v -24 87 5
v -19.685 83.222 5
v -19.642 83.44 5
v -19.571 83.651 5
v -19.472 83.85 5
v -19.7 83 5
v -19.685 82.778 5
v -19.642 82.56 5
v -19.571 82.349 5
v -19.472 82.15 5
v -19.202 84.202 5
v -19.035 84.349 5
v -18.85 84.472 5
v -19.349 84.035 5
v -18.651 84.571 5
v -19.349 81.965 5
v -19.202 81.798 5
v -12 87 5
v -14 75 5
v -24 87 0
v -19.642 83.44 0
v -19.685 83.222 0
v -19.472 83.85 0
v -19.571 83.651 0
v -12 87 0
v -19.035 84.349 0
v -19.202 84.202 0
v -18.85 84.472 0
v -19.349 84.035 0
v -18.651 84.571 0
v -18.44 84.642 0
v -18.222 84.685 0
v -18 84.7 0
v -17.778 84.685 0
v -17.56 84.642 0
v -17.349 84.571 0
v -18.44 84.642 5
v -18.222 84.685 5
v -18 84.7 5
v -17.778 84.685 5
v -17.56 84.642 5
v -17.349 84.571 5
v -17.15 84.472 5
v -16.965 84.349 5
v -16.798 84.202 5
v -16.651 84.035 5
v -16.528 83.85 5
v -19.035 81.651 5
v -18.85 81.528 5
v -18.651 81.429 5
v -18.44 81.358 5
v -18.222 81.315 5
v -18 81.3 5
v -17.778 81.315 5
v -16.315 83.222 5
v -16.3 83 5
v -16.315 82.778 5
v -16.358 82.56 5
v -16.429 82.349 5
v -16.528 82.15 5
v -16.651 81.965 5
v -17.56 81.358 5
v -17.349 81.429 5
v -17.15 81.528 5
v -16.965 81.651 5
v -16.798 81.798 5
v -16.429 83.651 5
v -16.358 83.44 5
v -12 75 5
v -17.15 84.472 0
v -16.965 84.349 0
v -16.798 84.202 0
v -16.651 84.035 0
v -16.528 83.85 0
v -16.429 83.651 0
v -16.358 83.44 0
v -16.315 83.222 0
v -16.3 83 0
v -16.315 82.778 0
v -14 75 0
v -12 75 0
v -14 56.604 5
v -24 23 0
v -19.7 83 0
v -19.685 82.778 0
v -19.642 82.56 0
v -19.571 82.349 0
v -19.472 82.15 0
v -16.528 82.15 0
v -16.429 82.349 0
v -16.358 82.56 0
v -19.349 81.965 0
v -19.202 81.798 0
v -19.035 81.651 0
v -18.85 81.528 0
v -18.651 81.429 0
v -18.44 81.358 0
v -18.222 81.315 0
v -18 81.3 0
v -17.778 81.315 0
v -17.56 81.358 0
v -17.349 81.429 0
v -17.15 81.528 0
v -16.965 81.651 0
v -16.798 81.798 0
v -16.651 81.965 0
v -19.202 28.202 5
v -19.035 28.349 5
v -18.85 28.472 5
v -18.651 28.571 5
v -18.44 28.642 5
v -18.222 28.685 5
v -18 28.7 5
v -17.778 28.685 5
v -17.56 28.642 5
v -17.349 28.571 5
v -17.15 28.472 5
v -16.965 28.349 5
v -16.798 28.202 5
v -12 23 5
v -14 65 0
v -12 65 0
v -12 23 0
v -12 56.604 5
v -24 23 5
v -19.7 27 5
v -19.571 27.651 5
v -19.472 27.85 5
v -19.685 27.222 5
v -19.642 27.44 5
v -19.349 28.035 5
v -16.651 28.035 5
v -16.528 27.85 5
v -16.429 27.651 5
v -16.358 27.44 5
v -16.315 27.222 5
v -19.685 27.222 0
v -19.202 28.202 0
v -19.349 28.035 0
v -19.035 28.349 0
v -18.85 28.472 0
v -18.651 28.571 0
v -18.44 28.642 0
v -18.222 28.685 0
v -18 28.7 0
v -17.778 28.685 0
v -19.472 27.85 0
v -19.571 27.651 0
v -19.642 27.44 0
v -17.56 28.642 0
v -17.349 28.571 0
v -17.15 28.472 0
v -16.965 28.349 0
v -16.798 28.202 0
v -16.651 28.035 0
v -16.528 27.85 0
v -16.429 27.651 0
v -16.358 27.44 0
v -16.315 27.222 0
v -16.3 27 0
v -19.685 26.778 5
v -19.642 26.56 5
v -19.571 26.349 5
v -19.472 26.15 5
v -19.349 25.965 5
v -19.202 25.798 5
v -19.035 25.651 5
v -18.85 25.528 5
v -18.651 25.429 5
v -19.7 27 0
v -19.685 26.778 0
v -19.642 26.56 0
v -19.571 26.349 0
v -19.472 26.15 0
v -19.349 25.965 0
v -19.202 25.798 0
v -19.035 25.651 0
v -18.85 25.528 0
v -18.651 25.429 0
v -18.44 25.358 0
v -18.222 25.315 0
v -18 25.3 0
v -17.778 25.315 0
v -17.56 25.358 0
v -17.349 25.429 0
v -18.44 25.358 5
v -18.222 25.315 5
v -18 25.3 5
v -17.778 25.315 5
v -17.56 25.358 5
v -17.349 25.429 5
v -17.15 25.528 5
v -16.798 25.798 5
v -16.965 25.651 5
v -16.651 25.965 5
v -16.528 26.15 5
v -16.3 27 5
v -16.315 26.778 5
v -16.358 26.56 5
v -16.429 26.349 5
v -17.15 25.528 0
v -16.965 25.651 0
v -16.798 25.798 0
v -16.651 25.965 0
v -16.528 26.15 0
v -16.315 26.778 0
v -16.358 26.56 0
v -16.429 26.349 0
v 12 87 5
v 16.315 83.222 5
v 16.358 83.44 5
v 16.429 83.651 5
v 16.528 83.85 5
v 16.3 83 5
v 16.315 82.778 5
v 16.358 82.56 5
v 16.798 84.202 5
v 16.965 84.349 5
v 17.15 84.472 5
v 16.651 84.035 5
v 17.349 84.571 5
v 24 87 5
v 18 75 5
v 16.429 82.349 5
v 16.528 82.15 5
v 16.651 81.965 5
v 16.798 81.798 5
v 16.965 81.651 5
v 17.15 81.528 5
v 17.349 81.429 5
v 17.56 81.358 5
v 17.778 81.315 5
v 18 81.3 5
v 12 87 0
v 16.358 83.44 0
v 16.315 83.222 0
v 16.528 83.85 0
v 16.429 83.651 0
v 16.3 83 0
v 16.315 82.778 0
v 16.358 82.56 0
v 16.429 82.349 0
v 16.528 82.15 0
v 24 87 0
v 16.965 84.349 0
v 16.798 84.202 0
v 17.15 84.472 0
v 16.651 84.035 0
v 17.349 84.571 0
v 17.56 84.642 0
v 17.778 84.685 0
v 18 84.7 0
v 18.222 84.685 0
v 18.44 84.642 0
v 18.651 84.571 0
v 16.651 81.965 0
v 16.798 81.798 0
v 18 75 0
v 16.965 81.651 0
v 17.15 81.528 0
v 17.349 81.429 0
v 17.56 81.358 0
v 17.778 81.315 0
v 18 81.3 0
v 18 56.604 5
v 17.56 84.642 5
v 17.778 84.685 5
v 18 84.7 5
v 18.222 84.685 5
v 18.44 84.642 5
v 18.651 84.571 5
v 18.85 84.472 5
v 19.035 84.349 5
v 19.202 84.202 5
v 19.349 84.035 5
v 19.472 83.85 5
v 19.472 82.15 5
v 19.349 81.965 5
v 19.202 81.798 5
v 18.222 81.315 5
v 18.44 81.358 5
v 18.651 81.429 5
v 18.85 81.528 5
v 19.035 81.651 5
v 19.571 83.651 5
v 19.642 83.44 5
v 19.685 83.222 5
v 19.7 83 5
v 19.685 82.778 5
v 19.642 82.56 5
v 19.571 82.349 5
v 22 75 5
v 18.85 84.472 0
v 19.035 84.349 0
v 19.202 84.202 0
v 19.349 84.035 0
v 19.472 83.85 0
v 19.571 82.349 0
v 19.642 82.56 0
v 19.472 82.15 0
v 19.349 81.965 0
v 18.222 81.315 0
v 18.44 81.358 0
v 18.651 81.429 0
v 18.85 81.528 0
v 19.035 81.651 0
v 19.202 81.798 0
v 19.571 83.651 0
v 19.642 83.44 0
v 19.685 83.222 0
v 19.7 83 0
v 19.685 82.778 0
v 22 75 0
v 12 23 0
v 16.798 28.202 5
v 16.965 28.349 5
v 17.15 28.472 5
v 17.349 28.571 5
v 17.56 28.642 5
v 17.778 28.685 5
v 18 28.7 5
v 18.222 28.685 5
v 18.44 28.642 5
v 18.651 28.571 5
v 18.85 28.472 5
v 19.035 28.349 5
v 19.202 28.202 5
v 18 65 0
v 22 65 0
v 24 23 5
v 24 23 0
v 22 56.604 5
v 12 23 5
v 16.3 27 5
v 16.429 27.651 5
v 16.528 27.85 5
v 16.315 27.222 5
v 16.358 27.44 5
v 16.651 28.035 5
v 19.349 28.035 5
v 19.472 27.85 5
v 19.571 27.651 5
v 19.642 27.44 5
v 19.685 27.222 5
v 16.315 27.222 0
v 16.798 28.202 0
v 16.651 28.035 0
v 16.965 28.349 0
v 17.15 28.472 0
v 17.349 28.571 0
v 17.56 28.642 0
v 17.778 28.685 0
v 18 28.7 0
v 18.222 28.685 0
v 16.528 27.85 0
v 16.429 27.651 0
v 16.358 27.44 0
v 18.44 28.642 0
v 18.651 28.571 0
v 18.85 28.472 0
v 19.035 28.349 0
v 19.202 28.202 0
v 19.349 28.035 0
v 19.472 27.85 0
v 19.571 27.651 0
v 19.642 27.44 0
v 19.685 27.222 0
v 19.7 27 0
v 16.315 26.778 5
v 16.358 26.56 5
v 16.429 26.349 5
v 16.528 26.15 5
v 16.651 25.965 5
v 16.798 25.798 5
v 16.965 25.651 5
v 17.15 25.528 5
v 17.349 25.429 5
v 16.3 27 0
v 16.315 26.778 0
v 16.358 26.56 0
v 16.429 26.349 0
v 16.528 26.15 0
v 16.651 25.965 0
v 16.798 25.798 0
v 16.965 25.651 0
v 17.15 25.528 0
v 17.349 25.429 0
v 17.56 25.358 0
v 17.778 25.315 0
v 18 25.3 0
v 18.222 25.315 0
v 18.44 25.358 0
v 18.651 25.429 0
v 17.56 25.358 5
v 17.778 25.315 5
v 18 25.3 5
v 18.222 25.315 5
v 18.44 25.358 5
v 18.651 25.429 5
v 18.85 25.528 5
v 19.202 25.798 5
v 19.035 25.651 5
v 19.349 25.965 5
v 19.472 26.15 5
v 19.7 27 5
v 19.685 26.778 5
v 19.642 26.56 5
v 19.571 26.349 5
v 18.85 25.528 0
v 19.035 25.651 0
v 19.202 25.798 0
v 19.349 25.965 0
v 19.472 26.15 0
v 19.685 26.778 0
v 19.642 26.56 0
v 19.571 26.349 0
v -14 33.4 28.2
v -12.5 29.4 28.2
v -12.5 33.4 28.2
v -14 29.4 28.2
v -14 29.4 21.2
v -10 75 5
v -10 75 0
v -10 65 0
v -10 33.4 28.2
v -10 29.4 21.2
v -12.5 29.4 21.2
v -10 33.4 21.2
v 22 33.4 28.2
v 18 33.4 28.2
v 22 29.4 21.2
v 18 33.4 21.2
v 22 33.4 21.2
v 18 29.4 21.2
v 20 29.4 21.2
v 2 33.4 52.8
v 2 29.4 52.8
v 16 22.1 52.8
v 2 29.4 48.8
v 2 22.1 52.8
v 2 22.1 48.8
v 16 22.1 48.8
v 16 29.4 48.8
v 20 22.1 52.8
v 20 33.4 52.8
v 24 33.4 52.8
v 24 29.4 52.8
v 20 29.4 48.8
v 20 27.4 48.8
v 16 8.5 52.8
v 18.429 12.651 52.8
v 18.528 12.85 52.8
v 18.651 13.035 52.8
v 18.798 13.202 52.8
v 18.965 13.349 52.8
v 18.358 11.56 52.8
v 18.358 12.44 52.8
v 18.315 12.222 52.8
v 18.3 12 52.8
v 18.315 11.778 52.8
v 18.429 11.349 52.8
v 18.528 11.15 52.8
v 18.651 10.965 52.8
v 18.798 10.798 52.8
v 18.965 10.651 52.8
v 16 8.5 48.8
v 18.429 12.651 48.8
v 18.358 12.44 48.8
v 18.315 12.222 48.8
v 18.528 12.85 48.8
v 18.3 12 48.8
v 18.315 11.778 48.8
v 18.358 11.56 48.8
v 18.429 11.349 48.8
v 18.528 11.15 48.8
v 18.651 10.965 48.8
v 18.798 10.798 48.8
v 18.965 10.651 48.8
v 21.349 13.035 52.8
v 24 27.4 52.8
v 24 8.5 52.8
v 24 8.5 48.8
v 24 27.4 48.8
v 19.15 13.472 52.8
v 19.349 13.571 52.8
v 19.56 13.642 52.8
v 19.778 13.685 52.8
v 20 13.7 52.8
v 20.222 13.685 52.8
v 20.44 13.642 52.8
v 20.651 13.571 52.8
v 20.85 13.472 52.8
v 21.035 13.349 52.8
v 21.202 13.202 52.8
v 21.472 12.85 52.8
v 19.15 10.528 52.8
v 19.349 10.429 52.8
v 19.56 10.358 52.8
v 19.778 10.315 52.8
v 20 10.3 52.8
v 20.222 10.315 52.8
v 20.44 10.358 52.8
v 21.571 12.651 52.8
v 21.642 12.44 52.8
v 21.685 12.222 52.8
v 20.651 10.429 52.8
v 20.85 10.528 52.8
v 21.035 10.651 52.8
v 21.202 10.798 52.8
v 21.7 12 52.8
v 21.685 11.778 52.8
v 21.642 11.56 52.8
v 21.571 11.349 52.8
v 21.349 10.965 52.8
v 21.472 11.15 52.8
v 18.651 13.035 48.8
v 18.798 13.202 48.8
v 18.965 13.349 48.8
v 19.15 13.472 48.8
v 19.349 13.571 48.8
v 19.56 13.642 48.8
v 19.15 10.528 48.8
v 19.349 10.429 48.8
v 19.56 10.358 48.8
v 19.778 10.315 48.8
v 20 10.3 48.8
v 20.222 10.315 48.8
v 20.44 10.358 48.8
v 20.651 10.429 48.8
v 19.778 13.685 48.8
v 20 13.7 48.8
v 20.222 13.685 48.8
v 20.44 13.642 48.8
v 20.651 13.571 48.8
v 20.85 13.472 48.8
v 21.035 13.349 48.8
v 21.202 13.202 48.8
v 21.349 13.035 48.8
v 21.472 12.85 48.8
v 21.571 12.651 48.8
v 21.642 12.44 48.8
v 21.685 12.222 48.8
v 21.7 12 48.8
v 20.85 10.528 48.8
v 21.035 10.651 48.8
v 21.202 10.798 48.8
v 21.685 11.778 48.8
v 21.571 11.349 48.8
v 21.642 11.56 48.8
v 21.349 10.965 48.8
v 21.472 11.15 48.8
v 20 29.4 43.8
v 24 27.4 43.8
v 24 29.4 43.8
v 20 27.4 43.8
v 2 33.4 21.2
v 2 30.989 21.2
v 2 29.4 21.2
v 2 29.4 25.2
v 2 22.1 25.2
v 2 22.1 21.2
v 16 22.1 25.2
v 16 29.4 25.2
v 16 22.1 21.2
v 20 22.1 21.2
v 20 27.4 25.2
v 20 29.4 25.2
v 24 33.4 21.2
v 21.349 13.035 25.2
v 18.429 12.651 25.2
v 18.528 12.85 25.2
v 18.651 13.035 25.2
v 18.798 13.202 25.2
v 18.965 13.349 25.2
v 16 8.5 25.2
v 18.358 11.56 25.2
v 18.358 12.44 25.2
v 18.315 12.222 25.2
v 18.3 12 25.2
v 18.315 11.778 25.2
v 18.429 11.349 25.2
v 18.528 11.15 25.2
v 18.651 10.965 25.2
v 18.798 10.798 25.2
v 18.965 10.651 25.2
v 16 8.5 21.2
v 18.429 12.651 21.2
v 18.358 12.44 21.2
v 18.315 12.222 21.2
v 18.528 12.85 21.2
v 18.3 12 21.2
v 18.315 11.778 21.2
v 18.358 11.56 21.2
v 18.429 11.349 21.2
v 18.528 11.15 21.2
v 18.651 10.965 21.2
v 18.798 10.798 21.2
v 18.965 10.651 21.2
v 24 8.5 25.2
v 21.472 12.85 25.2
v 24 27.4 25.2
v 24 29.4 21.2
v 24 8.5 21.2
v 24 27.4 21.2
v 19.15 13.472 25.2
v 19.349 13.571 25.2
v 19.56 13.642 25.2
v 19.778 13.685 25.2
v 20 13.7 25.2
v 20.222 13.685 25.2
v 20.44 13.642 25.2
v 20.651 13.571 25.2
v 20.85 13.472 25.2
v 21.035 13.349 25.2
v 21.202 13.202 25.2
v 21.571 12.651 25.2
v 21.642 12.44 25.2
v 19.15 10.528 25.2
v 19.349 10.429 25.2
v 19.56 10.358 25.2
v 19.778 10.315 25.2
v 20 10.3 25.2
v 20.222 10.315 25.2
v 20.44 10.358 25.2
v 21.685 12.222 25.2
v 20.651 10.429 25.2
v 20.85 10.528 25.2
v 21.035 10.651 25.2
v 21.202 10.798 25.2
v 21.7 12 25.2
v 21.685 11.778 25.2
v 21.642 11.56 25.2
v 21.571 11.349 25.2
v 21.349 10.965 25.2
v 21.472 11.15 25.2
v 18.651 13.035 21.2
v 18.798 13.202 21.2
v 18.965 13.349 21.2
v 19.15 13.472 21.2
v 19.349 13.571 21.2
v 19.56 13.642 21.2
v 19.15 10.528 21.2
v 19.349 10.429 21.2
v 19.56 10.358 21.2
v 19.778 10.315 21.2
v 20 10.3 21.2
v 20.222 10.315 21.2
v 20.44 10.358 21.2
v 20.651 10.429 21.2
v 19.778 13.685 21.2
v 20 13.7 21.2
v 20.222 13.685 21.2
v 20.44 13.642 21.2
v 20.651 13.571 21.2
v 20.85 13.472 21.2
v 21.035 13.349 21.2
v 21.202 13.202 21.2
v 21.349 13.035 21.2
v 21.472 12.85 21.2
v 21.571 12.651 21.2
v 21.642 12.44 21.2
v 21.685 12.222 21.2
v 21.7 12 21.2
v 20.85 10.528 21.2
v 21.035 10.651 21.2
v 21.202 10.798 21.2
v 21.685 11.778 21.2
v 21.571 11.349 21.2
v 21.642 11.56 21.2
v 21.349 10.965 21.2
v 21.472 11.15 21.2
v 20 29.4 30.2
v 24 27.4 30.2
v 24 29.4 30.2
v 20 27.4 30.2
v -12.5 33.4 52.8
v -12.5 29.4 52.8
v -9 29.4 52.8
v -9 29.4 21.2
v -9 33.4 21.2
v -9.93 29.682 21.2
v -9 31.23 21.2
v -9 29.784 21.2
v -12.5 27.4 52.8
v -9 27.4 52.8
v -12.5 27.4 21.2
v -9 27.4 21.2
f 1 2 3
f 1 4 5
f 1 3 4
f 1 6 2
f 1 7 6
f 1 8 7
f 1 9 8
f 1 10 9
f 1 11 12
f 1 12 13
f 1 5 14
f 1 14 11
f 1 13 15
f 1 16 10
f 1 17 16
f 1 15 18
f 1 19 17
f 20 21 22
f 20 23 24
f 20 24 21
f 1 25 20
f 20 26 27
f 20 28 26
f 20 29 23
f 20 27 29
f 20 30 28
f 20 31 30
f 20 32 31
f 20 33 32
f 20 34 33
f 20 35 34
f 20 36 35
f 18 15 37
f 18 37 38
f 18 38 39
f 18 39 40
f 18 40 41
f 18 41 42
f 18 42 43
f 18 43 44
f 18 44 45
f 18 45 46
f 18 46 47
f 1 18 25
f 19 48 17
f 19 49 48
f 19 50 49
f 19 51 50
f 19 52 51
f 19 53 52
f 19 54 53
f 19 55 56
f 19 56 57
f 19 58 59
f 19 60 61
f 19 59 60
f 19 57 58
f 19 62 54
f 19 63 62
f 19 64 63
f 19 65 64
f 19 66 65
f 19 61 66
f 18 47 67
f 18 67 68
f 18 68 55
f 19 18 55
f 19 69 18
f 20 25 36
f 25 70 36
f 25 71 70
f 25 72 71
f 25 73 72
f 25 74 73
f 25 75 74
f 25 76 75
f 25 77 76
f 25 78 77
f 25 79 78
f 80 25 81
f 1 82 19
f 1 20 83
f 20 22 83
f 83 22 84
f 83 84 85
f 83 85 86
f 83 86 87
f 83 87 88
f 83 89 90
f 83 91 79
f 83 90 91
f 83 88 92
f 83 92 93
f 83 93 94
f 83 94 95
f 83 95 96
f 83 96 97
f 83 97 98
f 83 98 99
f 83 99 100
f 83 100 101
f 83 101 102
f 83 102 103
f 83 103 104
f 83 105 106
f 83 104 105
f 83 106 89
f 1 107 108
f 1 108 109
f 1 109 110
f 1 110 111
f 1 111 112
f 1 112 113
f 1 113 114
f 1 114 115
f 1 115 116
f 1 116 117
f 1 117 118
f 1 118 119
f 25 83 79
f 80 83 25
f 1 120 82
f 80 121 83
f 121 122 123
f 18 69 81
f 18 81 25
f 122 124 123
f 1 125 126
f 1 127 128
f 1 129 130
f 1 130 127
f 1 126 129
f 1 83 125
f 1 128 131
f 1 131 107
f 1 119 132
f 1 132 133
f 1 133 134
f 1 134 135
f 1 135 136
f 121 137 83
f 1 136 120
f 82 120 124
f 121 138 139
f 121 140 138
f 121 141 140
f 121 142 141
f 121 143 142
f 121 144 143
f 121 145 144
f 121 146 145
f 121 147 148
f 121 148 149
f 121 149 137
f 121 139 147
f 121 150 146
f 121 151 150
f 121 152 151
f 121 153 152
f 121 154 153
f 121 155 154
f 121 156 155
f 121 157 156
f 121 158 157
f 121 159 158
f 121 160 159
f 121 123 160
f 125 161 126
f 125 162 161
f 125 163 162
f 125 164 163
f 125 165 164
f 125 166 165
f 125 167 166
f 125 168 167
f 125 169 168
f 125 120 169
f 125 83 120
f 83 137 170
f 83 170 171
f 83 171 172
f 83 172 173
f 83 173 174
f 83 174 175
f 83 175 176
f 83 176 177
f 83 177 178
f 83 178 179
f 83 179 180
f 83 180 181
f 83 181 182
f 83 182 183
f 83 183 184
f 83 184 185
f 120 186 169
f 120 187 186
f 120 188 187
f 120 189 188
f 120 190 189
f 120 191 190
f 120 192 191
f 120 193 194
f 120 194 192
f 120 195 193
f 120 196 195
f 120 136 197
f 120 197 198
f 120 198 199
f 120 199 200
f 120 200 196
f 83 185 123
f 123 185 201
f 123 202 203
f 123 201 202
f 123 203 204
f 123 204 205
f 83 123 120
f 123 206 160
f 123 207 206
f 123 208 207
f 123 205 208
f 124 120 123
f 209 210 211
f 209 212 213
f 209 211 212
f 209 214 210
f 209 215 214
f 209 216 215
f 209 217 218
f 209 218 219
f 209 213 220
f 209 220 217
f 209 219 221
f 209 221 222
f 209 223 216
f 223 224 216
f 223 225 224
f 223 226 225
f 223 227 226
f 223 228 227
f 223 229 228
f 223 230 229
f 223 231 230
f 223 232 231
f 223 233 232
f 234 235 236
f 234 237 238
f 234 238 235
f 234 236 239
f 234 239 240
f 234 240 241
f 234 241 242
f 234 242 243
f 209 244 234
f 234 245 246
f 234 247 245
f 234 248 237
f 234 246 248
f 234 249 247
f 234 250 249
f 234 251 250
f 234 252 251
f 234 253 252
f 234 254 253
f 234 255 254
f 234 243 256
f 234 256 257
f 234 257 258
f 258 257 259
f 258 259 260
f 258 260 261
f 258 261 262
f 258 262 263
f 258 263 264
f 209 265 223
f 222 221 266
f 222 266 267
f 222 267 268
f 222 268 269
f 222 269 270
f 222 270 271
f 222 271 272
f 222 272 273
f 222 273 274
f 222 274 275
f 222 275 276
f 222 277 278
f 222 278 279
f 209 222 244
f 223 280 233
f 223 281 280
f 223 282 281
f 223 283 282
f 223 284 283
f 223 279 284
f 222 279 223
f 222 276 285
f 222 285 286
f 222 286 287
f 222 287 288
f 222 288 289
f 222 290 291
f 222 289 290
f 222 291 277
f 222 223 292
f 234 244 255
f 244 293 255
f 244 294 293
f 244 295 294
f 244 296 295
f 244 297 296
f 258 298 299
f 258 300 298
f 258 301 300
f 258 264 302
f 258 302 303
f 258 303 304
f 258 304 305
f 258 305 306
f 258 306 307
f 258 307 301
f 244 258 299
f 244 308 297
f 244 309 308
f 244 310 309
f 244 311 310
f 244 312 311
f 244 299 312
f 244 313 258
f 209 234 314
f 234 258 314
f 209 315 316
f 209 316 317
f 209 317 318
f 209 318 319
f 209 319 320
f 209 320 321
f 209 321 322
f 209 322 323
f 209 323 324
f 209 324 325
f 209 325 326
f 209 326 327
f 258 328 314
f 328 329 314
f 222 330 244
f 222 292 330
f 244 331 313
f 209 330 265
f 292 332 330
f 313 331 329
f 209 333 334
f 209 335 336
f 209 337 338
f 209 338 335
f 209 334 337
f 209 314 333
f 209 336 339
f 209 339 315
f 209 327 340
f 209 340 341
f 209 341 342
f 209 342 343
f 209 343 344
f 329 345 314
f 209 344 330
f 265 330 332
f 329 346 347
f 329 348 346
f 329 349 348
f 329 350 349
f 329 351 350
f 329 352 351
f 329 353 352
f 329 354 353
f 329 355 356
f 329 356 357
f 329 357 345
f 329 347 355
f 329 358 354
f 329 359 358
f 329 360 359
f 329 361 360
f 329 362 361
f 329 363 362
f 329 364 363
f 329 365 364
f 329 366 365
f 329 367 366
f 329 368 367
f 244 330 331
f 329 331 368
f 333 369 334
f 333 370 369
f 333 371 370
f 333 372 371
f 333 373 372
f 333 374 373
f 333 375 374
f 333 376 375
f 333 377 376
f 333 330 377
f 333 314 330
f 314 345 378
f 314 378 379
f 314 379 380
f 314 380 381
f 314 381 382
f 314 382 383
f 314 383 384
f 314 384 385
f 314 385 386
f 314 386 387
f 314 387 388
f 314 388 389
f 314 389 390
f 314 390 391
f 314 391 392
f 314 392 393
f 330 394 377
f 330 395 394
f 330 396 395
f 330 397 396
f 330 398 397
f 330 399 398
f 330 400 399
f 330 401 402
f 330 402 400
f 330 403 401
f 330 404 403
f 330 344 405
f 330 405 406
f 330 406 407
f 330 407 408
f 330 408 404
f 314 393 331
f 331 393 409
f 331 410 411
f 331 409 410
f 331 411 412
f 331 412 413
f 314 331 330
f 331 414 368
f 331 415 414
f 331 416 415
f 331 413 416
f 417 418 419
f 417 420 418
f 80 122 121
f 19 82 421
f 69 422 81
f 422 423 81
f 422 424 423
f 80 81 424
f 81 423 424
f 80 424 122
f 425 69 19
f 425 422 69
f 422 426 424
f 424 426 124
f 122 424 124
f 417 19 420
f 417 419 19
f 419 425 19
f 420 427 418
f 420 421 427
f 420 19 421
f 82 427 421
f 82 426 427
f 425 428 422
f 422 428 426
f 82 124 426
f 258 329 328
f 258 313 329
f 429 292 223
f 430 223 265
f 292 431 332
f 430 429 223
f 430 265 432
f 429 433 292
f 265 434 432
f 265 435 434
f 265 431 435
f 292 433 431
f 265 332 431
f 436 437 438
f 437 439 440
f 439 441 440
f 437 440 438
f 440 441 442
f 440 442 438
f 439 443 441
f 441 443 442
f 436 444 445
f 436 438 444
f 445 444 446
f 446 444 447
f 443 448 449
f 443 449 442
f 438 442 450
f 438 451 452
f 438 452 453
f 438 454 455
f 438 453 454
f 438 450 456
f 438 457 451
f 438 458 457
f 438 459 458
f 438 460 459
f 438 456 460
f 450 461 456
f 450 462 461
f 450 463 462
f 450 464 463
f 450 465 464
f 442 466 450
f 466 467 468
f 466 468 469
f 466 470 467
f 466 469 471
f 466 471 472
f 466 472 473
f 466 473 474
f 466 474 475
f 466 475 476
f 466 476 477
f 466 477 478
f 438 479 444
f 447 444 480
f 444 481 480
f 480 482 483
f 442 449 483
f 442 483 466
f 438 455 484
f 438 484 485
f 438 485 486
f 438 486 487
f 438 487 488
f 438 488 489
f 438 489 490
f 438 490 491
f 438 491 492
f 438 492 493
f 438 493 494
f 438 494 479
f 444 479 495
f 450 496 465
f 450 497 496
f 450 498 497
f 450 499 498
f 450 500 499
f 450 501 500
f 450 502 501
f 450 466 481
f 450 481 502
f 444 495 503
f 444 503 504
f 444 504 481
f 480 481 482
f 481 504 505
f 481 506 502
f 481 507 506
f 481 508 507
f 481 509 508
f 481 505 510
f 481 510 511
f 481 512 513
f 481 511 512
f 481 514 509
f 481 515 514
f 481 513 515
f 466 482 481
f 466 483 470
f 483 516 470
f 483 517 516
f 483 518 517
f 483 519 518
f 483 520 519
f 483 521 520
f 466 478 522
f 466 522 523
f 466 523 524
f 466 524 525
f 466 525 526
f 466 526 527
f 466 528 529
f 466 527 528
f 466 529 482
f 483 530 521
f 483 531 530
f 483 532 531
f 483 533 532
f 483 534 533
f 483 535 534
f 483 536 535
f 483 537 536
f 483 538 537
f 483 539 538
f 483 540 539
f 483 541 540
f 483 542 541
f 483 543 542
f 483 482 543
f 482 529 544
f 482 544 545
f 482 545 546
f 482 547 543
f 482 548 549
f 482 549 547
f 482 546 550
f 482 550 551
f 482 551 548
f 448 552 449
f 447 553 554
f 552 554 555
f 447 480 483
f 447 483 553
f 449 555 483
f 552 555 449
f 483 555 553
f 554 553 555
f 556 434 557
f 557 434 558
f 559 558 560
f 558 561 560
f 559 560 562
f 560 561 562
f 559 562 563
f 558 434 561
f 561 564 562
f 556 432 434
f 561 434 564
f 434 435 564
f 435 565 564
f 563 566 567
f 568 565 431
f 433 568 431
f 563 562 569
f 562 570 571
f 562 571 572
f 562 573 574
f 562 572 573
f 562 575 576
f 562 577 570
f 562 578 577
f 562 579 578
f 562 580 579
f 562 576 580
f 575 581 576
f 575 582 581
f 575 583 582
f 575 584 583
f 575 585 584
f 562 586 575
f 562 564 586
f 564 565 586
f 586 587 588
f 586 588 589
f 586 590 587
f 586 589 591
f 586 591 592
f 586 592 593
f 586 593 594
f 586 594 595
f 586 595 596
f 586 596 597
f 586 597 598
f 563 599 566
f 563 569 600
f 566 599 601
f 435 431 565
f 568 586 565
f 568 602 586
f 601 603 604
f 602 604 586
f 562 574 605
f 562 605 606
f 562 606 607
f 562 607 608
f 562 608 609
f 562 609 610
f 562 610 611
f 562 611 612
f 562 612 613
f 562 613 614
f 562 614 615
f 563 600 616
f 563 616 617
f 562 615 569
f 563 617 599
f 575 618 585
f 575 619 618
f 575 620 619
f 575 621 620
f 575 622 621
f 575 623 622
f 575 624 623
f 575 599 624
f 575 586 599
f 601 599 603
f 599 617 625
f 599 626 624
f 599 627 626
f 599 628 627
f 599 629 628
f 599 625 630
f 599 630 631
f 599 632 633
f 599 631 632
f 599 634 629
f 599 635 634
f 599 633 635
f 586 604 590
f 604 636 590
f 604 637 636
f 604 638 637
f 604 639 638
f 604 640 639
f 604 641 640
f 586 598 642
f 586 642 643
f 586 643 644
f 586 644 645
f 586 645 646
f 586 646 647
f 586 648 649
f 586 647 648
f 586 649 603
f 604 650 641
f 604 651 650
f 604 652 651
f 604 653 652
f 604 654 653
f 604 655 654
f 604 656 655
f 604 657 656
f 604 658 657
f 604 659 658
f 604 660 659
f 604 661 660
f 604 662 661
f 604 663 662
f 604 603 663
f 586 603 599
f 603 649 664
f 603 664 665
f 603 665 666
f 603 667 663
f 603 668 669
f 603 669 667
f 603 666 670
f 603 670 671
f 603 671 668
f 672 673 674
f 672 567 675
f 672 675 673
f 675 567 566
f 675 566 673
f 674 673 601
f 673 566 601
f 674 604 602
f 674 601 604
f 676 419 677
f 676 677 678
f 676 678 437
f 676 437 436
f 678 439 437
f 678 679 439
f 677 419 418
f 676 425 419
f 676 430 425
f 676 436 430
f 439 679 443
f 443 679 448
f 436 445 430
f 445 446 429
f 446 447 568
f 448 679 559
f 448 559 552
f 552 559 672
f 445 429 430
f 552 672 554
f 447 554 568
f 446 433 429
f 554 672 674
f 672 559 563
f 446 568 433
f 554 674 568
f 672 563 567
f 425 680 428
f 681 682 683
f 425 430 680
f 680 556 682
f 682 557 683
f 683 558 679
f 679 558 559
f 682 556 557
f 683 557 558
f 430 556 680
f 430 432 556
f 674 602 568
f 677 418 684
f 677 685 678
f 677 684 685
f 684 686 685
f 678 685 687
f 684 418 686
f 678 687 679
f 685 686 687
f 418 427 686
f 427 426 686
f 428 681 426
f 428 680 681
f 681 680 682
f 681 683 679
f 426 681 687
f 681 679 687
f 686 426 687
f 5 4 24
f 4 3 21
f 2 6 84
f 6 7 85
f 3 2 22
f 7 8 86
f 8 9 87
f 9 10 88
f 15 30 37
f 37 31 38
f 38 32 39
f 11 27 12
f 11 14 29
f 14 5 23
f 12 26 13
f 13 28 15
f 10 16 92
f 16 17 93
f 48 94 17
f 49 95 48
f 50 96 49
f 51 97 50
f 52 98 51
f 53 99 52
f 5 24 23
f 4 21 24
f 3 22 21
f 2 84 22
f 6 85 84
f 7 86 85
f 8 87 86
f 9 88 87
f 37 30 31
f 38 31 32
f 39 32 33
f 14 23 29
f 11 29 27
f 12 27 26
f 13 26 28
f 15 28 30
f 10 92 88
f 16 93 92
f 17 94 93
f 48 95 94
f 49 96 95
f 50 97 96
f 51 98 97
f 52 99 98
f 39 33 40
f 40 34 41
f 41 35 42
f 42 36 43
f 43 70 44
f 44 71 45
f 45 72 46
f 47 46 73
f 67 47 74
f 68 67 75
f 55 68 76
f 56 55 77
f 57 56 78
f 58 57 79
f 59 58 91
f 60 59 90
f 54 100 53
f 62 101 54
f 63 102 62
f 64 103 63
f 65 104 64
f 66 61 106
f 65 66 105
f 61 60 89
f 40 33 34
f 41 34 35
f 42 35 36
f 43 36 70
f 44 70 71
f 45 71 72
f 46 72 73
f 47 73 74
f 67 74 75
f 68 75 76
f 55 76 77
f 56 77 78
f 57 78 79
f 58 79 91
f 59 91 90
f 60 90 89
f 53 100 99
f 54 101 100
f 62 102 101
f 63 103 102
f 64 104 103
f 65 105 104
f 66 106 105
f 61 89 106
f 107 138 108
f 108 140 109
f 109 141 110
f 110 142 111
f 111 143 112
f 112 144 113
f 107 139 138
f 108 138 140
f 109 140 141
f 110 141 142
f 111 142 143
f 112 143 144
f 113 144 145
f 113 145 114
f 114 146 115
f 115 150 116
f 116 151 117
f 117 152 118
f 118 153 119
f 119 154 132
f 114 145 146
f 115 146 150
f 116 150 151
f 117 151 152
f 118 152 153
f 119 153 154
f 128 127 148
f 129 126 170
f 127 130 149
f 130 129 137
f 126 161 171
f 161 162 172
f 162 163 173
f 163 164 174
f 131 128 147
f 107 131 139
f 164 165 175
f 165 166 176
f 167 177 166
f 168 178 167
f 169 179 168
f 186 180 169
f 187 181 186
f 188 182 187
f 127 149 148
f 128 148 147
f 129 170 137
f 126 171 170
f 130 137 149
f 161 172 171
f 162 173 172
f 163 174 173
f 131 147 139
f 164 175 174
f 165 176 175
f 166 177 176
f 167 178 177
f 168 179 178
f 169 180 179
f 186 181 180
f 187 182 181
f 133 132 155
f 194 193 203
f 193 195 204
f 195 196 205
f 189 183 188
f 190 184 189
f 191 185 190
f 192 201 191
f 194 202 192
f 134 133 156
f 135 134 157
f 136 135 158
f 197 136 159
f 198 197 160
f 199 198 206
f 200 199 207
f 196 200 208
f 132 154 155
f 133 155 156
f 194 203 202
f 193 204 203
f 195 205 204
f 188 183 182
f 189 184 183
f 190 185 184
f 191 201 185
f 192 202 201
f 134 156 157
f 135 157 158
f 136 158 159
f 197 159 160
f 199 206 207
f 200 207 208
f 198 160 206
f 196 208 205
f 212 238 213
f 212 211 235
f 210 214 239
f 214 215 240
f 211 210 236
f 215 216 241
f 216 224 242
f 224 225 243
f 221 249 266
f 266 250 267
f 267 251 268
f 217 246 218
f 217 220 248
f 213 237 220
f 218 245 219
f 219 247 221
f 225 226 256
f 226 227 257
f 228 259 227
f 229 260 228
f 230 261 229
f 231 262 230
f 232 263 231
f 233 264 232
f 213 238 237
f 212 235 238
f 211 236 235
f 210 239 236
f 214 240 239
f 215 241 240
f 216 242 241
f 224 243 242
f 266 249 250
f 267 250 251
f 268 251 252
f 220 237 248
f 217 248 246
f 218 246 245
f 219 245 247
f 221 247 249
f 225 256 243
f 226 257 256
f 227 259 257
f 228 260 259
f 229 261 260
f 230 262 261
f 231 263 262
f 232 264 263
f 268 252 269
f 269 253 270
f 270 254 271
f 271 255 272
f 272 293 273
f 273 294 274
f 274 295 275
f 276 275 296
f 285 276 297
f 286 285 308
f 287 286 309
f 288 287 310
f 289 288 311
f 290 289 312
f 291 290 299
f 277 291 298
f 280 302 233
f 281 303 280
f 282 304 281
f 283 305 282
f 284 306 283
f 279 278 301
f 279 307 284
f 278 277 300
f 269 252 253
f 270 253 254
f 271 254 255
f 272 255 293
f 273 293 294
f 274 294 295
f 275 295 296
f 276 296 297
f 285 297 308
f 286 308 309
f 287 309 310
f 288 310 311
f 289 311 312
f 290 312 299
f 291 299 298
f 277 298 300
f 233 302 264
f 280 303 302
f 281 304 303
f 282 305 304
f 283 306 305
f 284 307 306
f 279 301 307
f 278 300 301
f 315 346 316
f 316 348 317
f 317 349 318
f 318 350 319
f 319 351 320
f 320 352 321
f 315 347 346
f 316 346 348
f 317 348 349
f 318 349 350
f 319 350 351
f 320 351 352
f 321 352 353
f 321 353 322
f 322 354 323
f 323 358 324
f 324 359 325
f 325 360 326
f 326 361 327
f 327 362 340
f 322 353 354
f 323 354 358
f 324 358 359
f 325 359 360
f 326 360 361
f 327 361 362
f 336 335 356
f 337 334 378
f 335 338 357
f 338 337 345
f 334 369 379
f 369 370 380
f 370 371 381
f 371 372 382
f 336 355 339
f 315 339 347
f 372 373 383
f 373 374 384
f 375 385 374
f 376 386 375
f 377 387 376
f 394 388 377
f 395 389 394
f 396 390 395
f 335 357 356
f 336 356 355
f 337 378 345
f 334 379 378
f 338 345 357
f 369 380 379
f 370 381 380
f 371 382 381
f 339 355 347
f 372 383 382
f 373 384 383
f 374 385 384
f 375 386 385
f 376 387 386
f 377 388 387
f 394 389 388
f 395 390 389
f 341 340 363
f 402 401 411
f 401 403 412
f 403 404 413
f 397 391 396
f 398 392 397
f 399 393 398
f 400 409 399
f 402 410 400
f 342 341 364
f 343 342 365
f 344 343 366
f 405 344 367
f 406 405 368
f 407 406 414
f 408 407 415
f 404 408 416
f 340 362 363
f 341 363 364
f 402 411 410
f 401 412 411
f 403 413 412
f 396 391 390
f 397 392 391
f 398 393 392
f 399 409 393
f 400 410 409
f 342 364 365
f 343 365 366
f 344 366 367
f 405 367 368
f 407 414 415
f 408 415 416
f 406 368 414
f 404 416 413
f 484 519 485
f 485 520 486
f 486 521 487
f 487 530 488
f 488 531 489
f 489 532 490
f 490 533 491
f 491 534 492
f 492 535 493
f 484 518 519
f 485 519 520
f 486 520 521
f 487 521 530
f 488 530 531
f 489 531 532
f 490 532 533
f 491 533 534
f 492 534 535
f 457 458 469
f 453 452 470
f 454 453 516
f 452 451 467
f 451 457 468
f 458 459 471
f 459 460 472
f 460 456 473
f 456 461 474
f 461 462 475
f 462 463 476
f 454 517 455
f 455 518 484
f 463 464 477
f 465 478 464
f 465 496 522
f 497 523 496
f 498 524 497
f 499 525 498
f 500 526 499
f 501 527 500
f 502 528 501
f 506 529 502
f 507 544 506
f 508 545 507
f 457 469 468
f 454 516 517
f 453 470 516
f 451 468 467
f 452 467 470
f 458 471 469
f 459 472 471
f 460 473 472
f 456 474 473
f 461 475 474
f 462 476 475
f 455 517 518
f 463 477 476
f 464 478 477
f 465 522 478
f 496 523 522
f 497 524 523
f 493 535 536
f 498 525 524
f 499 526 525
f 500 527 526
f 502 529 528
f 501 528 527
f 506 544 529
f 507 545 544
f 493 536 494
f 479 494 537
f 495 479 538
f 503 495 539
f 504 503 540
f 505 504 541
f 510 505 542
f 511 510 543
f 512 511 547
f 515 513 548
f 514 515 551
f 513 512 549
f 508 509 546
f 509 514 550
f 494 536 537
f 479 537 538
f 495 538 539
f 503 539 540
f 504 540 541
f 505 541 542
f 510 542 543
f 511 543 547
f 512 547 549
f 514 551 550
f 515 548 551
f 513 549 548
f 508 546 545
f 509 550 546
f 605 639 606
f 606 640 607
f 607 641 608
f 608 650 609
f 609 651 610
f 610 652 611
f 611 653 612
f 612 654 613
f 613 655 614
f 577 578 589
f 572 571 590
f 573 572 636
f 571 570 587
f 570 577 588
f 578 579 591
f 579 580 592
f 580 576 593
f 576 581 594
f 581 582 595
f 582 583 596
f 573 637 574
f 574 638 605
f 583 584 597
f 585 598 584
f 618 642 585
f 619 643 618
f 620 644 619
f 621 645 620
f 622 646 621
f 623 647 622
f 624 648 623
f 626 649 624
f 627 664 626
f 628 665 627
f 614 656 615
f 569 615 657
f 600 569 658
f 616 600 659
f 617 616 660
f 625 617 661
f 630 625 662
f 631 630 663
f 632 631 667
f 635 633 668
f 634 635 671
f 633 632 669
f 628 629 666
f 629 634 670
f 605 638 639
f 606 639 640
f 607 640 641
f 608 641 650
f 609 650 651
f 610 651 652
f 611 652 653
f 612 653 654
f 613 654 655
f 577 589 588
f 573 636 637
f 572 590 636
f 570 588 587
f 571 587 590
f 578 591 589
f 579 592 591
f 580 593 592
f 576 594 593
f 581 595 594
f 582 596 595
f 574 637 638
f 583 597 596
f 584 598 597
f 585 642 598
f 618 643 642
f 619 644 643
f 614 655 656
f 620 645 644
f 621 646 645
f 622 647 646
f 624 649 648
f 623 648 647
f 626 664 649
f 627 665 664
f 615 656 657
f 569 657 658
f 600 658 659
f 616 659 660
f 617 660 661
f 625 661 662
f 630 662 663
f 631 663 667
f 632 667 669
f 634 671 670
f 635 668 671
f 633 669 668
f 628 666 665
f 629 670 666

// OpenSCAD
// PROVISIONAL SG90 body cradle for the existing rear plate/support stack.
// Geometry only: real servo ears, cable exit, wall fixing and load capacity
// still require physical measurement and testing before powered operation.
include <parameters.scad>
$fn = 48;

holder_flange_thickness = 5.0;
holder_flange_inner_x = rear_back_surface_x - rear_plate_standoff
                         - rear_plate_thickness - 5.0; // support outer face
holder_flange_outer_x = holder_flange_inner_x - holder_flange_thickness;
holder_rail_width_y = 12.0;
holder_rail_z0 = rear_plate_center_z - rear_plate_height / 2 + 8.0;
holder_rail_z1 = rear_plate_center_z + rear_plate_height / 2 - 8.0;

// Servo shaft is along Y; the body extends behind the original horn.
holder_servo_body_y0 = servo_body_front_y;
holder_servo_body_y1 = holder_servo_body_y0 + servo_body_z;
holder_servo_xc = bell_servo_x - servo_shaft_offset_x;
holder_body_x0 = holder_servo_xc - servo_body_x / 2;
holder_body_x1 = holder_servo_xc + servo_body_x / 2;
holder_body_z0 = bell_servo_z - servo_body_y / 2;
holder_body_z1 = bell_servo_z + servo_body_y / 2;
holder_body_gap = body_clearance_per_side; // tune from fit coupon
holder_wall = 4.0;
holder_base = 4.0;
holder_tray_x0 = holder_body_x0 - holder_body_gap - holder_wall;
holder_tray_x1 = holder_body_x1 + holder_body_gap + holder_wall;
// Trim the forward tray to leave the reported horn/saddle sweep clear.
// 3.5 mm retaining lip ahead of the case face remains PROVISIONAL.
holder_tray_y0 = holder_servo_body_y0 - 3.5;
holder_tray_y1 = holder_servo_body_y1 + 4.0;
holder_tray_z0 = holder_body_z0 - holder_body_gap - holder_base;
holder_tray_z1 = holder_body_z0 - holder_body_gap;

// A removable bridge holds the rear end of the servo body for fit tests.
holder_cap_y0 = 16.0; // PROVISIONAL; check ears and cable
holder_cap_y1 = 24.0;
holder_cap_pin_y = 20.0;
holder_cap_pin_z = -12.0;
holder_cap_leg = 4.0;
holder_cap_side_gap = 0.35; // PROVISIONAL FDM slide clearance
holder_cap_leg_top_z = -8.5;
holder_cap_bridge_z0 = holder_cap_leg_top_z + 0.35;
holder_cap_bridge_z1 = holder_cap_bridge_z0 + 4.0;
holder_cap_body_pad_z0 = holder_body_z1 + 0.4;

assert(holder_servo_body_y1 <= holder_tray_y1);
assert(holder_rail_z0 < rear_plate_center_z - rear_plate_height / 2 + 12);
assert(holder_rail_z1 > rear_plate_center_z + rear_plate_height / 2 - 12);
assert(holder_cap_pin_z - 3.5 > holder_body_z1);

module holder_x_hole(y, z, x0, length) {
    translate([x0, y, z]) rotate([0, 90, 0])
        cylinder(d = stage2_pivot_hole_d, h = length);
}

module rear_servo_holder() {
    difference() {
        union() {
            // Two mounting rails share all four existing support/plate holes.
            for (s = [-1, 1])
                translate([holder_flange_outer_x,
                           s * rear_plate_mount_hole_pitch / 2
                             - holder_rail_width_y / 2,
                           holder_rail_z0])
                    cube([holder_flange_thickness, holder_rail_width_y,
                          holder_rail_z1 - holder_rail_z0]);

            // Two separated triangular ribs avoid the central bell-crank web.
            for (rib_y = [-14, 18])
                hull() {
                    translate([holder_flange_outer_x, rib_y, -75])
                        cube([holder_flange_thickness, 4, 10]);
                    translate([holder_tray_x1 - 7, rib_y, holder_tray_z0])
                        cube([7, 4, holder_base]);
                }

            // Open tray; the front lip clears the horn, rear corners leave
            // a cable opening. The actual cable exit is UNMEASURED.
            translate([holder_tray_x0, holder_tray_y0, holder_tray_z0])
                cube([holder_tray_x1 - holder_tray_x0,
                      holder_tray_y1 - holder_tray_y0, holder_base]);
            for (sx = [-1, 1]) {
                wall_x = sx < 0 ? holder_tray_x0
                                : holder_tray_x1 - holder_wall;
                translate([wall_x, 2, holder_tray_z0])
                    cube([holder_wall, holder_servo_body_y1 - 2,
                          holder_body_z0 + 7 - holder_tray_z0]);
                // Taller rear lugs accept two printed 9 mm grip pins.
                translate([wall_x, holder_cap_y0, holder_tray_z0])
                    cube([holder_wall, holder_cap_y1 - holder_cap_y0,
                          holder_cap_leg_top_z - holder_tray_z0]);
                translate([sx < 0 ? wall_x : wall_x - 5,
                           holder_servo_body_y1, holder_tray_z0])
                    cube([holder_wall + 5, 4, 6]);
            }
            translate([holder_tray_x0, holder_tray_y0, holder_tray_z0])
                cube([holder_tray_x1 - holder_tray_x0,
                      holder_servo_body_y0 - holder_tray_y0, 6]);
        }
        // Use four 15.5 mm grip offset-head pins inserted from the rear plate
        // foot side; standard C-clips on that side collide with the feet.
        for (side = [-1, 1], top = [-1, 1])
            holder_x_hole(side * rear_plate_mount_hole_pitch / 2,
                          rear_plate_center_z
                            + top * (rear_plate_height / 2 - 12),
                          holder_flange_outer_x - 0.1,
                          holder_flange_thickness + 0.2);
        for (sx = [-1, 1])
            holder_x_hole(holder_cap_pin_y, holder_cap_pin_z,
                          sx < 0 ? holder_tray_x0 - 0.1
                                 : holder_tray_x1 - holder_wall - 0.1,
                          holder_wall + 0.2);
    }
}

module servo_holder_cap() {
    difference() {
        union() {
            // Bridge passes above the tall cradle lugs. A central pad drops
            // down to the body; this avoids intersecting the lugs.
            translate([holder_tray_x0 - holder_cap_side_gap
                       - holder_cap_leg, holder_cap_y0,
                       holder_cap_bridge_z0])
                cube([holder_tray_x1 - holder_tray_x0
                      + 2 * (holder_cap_leg + holder_cap_side_gap),
                      holder_cap_y1 - holder_cap_y0,
                      holder_cap_bridge_z1 - holder_cap_bridge_z0]);
            translate([holder_servo_xc - 10, holder_cap_y0,
                       holder_cap_body_pad_z0])
                cube([20, holder_cap_y1 - holder_cap_y0,
                      holder_cap_bridge_z0 - holder_cap_body_pad_z0]);
            for (sx = [-1, 1])
                translate([sx < 0 ? holder_tray_x0 - holder_cap_side_gap
                                      - holder_cap_leg
                                    : holder_tray_x1 + holder_cap_side_gap,
                           holder_cap_y0, holder_tray_z1])
                    cube([holder_cap_leg, holder_cap_y1 - holder_cap_y0,
                          holder_cap_bridge_z1 - holder_tray_z1]);
        }
        for (sx = [-1, 1])
            holder_x_hole(holder_cap_pin_y, holder_cap_pin_z,
                          sx < 0 ? holder_tray_x0 - holder_cap_side_gap
                                     - holder_cap_leg - 0.1
                                 : holder_tray_x1 + holder_cap_side_gap - 0.1,
                          holder_cap_leg + 0.2);
    }
}

// Print orientation: mounting-rail contact faces on the bed, cradle above.
module rear_servo_holder_print() {
    multmatrix([
        [0, 1, 0, 0],
        [0, 0, -1, 0],
        [-1, 0, 0, holder_flange_inner_x],
        [0, 0, 0, 1]
    ]) rear_servo_holder();
}

// Print cap on its broad Y face. It slides over the body after fit check.
module servo_holder_cap_print() {
    multmatrix([
        [1, 0, 0, 0],
        [0, 0, 1, -holder_tray_z1],
        [0, -1, 0, holder_cap_y1],
        [0, 0, 0, 1]
    ]) servo_holder_cap();
}

rear_servo_holder_print();
